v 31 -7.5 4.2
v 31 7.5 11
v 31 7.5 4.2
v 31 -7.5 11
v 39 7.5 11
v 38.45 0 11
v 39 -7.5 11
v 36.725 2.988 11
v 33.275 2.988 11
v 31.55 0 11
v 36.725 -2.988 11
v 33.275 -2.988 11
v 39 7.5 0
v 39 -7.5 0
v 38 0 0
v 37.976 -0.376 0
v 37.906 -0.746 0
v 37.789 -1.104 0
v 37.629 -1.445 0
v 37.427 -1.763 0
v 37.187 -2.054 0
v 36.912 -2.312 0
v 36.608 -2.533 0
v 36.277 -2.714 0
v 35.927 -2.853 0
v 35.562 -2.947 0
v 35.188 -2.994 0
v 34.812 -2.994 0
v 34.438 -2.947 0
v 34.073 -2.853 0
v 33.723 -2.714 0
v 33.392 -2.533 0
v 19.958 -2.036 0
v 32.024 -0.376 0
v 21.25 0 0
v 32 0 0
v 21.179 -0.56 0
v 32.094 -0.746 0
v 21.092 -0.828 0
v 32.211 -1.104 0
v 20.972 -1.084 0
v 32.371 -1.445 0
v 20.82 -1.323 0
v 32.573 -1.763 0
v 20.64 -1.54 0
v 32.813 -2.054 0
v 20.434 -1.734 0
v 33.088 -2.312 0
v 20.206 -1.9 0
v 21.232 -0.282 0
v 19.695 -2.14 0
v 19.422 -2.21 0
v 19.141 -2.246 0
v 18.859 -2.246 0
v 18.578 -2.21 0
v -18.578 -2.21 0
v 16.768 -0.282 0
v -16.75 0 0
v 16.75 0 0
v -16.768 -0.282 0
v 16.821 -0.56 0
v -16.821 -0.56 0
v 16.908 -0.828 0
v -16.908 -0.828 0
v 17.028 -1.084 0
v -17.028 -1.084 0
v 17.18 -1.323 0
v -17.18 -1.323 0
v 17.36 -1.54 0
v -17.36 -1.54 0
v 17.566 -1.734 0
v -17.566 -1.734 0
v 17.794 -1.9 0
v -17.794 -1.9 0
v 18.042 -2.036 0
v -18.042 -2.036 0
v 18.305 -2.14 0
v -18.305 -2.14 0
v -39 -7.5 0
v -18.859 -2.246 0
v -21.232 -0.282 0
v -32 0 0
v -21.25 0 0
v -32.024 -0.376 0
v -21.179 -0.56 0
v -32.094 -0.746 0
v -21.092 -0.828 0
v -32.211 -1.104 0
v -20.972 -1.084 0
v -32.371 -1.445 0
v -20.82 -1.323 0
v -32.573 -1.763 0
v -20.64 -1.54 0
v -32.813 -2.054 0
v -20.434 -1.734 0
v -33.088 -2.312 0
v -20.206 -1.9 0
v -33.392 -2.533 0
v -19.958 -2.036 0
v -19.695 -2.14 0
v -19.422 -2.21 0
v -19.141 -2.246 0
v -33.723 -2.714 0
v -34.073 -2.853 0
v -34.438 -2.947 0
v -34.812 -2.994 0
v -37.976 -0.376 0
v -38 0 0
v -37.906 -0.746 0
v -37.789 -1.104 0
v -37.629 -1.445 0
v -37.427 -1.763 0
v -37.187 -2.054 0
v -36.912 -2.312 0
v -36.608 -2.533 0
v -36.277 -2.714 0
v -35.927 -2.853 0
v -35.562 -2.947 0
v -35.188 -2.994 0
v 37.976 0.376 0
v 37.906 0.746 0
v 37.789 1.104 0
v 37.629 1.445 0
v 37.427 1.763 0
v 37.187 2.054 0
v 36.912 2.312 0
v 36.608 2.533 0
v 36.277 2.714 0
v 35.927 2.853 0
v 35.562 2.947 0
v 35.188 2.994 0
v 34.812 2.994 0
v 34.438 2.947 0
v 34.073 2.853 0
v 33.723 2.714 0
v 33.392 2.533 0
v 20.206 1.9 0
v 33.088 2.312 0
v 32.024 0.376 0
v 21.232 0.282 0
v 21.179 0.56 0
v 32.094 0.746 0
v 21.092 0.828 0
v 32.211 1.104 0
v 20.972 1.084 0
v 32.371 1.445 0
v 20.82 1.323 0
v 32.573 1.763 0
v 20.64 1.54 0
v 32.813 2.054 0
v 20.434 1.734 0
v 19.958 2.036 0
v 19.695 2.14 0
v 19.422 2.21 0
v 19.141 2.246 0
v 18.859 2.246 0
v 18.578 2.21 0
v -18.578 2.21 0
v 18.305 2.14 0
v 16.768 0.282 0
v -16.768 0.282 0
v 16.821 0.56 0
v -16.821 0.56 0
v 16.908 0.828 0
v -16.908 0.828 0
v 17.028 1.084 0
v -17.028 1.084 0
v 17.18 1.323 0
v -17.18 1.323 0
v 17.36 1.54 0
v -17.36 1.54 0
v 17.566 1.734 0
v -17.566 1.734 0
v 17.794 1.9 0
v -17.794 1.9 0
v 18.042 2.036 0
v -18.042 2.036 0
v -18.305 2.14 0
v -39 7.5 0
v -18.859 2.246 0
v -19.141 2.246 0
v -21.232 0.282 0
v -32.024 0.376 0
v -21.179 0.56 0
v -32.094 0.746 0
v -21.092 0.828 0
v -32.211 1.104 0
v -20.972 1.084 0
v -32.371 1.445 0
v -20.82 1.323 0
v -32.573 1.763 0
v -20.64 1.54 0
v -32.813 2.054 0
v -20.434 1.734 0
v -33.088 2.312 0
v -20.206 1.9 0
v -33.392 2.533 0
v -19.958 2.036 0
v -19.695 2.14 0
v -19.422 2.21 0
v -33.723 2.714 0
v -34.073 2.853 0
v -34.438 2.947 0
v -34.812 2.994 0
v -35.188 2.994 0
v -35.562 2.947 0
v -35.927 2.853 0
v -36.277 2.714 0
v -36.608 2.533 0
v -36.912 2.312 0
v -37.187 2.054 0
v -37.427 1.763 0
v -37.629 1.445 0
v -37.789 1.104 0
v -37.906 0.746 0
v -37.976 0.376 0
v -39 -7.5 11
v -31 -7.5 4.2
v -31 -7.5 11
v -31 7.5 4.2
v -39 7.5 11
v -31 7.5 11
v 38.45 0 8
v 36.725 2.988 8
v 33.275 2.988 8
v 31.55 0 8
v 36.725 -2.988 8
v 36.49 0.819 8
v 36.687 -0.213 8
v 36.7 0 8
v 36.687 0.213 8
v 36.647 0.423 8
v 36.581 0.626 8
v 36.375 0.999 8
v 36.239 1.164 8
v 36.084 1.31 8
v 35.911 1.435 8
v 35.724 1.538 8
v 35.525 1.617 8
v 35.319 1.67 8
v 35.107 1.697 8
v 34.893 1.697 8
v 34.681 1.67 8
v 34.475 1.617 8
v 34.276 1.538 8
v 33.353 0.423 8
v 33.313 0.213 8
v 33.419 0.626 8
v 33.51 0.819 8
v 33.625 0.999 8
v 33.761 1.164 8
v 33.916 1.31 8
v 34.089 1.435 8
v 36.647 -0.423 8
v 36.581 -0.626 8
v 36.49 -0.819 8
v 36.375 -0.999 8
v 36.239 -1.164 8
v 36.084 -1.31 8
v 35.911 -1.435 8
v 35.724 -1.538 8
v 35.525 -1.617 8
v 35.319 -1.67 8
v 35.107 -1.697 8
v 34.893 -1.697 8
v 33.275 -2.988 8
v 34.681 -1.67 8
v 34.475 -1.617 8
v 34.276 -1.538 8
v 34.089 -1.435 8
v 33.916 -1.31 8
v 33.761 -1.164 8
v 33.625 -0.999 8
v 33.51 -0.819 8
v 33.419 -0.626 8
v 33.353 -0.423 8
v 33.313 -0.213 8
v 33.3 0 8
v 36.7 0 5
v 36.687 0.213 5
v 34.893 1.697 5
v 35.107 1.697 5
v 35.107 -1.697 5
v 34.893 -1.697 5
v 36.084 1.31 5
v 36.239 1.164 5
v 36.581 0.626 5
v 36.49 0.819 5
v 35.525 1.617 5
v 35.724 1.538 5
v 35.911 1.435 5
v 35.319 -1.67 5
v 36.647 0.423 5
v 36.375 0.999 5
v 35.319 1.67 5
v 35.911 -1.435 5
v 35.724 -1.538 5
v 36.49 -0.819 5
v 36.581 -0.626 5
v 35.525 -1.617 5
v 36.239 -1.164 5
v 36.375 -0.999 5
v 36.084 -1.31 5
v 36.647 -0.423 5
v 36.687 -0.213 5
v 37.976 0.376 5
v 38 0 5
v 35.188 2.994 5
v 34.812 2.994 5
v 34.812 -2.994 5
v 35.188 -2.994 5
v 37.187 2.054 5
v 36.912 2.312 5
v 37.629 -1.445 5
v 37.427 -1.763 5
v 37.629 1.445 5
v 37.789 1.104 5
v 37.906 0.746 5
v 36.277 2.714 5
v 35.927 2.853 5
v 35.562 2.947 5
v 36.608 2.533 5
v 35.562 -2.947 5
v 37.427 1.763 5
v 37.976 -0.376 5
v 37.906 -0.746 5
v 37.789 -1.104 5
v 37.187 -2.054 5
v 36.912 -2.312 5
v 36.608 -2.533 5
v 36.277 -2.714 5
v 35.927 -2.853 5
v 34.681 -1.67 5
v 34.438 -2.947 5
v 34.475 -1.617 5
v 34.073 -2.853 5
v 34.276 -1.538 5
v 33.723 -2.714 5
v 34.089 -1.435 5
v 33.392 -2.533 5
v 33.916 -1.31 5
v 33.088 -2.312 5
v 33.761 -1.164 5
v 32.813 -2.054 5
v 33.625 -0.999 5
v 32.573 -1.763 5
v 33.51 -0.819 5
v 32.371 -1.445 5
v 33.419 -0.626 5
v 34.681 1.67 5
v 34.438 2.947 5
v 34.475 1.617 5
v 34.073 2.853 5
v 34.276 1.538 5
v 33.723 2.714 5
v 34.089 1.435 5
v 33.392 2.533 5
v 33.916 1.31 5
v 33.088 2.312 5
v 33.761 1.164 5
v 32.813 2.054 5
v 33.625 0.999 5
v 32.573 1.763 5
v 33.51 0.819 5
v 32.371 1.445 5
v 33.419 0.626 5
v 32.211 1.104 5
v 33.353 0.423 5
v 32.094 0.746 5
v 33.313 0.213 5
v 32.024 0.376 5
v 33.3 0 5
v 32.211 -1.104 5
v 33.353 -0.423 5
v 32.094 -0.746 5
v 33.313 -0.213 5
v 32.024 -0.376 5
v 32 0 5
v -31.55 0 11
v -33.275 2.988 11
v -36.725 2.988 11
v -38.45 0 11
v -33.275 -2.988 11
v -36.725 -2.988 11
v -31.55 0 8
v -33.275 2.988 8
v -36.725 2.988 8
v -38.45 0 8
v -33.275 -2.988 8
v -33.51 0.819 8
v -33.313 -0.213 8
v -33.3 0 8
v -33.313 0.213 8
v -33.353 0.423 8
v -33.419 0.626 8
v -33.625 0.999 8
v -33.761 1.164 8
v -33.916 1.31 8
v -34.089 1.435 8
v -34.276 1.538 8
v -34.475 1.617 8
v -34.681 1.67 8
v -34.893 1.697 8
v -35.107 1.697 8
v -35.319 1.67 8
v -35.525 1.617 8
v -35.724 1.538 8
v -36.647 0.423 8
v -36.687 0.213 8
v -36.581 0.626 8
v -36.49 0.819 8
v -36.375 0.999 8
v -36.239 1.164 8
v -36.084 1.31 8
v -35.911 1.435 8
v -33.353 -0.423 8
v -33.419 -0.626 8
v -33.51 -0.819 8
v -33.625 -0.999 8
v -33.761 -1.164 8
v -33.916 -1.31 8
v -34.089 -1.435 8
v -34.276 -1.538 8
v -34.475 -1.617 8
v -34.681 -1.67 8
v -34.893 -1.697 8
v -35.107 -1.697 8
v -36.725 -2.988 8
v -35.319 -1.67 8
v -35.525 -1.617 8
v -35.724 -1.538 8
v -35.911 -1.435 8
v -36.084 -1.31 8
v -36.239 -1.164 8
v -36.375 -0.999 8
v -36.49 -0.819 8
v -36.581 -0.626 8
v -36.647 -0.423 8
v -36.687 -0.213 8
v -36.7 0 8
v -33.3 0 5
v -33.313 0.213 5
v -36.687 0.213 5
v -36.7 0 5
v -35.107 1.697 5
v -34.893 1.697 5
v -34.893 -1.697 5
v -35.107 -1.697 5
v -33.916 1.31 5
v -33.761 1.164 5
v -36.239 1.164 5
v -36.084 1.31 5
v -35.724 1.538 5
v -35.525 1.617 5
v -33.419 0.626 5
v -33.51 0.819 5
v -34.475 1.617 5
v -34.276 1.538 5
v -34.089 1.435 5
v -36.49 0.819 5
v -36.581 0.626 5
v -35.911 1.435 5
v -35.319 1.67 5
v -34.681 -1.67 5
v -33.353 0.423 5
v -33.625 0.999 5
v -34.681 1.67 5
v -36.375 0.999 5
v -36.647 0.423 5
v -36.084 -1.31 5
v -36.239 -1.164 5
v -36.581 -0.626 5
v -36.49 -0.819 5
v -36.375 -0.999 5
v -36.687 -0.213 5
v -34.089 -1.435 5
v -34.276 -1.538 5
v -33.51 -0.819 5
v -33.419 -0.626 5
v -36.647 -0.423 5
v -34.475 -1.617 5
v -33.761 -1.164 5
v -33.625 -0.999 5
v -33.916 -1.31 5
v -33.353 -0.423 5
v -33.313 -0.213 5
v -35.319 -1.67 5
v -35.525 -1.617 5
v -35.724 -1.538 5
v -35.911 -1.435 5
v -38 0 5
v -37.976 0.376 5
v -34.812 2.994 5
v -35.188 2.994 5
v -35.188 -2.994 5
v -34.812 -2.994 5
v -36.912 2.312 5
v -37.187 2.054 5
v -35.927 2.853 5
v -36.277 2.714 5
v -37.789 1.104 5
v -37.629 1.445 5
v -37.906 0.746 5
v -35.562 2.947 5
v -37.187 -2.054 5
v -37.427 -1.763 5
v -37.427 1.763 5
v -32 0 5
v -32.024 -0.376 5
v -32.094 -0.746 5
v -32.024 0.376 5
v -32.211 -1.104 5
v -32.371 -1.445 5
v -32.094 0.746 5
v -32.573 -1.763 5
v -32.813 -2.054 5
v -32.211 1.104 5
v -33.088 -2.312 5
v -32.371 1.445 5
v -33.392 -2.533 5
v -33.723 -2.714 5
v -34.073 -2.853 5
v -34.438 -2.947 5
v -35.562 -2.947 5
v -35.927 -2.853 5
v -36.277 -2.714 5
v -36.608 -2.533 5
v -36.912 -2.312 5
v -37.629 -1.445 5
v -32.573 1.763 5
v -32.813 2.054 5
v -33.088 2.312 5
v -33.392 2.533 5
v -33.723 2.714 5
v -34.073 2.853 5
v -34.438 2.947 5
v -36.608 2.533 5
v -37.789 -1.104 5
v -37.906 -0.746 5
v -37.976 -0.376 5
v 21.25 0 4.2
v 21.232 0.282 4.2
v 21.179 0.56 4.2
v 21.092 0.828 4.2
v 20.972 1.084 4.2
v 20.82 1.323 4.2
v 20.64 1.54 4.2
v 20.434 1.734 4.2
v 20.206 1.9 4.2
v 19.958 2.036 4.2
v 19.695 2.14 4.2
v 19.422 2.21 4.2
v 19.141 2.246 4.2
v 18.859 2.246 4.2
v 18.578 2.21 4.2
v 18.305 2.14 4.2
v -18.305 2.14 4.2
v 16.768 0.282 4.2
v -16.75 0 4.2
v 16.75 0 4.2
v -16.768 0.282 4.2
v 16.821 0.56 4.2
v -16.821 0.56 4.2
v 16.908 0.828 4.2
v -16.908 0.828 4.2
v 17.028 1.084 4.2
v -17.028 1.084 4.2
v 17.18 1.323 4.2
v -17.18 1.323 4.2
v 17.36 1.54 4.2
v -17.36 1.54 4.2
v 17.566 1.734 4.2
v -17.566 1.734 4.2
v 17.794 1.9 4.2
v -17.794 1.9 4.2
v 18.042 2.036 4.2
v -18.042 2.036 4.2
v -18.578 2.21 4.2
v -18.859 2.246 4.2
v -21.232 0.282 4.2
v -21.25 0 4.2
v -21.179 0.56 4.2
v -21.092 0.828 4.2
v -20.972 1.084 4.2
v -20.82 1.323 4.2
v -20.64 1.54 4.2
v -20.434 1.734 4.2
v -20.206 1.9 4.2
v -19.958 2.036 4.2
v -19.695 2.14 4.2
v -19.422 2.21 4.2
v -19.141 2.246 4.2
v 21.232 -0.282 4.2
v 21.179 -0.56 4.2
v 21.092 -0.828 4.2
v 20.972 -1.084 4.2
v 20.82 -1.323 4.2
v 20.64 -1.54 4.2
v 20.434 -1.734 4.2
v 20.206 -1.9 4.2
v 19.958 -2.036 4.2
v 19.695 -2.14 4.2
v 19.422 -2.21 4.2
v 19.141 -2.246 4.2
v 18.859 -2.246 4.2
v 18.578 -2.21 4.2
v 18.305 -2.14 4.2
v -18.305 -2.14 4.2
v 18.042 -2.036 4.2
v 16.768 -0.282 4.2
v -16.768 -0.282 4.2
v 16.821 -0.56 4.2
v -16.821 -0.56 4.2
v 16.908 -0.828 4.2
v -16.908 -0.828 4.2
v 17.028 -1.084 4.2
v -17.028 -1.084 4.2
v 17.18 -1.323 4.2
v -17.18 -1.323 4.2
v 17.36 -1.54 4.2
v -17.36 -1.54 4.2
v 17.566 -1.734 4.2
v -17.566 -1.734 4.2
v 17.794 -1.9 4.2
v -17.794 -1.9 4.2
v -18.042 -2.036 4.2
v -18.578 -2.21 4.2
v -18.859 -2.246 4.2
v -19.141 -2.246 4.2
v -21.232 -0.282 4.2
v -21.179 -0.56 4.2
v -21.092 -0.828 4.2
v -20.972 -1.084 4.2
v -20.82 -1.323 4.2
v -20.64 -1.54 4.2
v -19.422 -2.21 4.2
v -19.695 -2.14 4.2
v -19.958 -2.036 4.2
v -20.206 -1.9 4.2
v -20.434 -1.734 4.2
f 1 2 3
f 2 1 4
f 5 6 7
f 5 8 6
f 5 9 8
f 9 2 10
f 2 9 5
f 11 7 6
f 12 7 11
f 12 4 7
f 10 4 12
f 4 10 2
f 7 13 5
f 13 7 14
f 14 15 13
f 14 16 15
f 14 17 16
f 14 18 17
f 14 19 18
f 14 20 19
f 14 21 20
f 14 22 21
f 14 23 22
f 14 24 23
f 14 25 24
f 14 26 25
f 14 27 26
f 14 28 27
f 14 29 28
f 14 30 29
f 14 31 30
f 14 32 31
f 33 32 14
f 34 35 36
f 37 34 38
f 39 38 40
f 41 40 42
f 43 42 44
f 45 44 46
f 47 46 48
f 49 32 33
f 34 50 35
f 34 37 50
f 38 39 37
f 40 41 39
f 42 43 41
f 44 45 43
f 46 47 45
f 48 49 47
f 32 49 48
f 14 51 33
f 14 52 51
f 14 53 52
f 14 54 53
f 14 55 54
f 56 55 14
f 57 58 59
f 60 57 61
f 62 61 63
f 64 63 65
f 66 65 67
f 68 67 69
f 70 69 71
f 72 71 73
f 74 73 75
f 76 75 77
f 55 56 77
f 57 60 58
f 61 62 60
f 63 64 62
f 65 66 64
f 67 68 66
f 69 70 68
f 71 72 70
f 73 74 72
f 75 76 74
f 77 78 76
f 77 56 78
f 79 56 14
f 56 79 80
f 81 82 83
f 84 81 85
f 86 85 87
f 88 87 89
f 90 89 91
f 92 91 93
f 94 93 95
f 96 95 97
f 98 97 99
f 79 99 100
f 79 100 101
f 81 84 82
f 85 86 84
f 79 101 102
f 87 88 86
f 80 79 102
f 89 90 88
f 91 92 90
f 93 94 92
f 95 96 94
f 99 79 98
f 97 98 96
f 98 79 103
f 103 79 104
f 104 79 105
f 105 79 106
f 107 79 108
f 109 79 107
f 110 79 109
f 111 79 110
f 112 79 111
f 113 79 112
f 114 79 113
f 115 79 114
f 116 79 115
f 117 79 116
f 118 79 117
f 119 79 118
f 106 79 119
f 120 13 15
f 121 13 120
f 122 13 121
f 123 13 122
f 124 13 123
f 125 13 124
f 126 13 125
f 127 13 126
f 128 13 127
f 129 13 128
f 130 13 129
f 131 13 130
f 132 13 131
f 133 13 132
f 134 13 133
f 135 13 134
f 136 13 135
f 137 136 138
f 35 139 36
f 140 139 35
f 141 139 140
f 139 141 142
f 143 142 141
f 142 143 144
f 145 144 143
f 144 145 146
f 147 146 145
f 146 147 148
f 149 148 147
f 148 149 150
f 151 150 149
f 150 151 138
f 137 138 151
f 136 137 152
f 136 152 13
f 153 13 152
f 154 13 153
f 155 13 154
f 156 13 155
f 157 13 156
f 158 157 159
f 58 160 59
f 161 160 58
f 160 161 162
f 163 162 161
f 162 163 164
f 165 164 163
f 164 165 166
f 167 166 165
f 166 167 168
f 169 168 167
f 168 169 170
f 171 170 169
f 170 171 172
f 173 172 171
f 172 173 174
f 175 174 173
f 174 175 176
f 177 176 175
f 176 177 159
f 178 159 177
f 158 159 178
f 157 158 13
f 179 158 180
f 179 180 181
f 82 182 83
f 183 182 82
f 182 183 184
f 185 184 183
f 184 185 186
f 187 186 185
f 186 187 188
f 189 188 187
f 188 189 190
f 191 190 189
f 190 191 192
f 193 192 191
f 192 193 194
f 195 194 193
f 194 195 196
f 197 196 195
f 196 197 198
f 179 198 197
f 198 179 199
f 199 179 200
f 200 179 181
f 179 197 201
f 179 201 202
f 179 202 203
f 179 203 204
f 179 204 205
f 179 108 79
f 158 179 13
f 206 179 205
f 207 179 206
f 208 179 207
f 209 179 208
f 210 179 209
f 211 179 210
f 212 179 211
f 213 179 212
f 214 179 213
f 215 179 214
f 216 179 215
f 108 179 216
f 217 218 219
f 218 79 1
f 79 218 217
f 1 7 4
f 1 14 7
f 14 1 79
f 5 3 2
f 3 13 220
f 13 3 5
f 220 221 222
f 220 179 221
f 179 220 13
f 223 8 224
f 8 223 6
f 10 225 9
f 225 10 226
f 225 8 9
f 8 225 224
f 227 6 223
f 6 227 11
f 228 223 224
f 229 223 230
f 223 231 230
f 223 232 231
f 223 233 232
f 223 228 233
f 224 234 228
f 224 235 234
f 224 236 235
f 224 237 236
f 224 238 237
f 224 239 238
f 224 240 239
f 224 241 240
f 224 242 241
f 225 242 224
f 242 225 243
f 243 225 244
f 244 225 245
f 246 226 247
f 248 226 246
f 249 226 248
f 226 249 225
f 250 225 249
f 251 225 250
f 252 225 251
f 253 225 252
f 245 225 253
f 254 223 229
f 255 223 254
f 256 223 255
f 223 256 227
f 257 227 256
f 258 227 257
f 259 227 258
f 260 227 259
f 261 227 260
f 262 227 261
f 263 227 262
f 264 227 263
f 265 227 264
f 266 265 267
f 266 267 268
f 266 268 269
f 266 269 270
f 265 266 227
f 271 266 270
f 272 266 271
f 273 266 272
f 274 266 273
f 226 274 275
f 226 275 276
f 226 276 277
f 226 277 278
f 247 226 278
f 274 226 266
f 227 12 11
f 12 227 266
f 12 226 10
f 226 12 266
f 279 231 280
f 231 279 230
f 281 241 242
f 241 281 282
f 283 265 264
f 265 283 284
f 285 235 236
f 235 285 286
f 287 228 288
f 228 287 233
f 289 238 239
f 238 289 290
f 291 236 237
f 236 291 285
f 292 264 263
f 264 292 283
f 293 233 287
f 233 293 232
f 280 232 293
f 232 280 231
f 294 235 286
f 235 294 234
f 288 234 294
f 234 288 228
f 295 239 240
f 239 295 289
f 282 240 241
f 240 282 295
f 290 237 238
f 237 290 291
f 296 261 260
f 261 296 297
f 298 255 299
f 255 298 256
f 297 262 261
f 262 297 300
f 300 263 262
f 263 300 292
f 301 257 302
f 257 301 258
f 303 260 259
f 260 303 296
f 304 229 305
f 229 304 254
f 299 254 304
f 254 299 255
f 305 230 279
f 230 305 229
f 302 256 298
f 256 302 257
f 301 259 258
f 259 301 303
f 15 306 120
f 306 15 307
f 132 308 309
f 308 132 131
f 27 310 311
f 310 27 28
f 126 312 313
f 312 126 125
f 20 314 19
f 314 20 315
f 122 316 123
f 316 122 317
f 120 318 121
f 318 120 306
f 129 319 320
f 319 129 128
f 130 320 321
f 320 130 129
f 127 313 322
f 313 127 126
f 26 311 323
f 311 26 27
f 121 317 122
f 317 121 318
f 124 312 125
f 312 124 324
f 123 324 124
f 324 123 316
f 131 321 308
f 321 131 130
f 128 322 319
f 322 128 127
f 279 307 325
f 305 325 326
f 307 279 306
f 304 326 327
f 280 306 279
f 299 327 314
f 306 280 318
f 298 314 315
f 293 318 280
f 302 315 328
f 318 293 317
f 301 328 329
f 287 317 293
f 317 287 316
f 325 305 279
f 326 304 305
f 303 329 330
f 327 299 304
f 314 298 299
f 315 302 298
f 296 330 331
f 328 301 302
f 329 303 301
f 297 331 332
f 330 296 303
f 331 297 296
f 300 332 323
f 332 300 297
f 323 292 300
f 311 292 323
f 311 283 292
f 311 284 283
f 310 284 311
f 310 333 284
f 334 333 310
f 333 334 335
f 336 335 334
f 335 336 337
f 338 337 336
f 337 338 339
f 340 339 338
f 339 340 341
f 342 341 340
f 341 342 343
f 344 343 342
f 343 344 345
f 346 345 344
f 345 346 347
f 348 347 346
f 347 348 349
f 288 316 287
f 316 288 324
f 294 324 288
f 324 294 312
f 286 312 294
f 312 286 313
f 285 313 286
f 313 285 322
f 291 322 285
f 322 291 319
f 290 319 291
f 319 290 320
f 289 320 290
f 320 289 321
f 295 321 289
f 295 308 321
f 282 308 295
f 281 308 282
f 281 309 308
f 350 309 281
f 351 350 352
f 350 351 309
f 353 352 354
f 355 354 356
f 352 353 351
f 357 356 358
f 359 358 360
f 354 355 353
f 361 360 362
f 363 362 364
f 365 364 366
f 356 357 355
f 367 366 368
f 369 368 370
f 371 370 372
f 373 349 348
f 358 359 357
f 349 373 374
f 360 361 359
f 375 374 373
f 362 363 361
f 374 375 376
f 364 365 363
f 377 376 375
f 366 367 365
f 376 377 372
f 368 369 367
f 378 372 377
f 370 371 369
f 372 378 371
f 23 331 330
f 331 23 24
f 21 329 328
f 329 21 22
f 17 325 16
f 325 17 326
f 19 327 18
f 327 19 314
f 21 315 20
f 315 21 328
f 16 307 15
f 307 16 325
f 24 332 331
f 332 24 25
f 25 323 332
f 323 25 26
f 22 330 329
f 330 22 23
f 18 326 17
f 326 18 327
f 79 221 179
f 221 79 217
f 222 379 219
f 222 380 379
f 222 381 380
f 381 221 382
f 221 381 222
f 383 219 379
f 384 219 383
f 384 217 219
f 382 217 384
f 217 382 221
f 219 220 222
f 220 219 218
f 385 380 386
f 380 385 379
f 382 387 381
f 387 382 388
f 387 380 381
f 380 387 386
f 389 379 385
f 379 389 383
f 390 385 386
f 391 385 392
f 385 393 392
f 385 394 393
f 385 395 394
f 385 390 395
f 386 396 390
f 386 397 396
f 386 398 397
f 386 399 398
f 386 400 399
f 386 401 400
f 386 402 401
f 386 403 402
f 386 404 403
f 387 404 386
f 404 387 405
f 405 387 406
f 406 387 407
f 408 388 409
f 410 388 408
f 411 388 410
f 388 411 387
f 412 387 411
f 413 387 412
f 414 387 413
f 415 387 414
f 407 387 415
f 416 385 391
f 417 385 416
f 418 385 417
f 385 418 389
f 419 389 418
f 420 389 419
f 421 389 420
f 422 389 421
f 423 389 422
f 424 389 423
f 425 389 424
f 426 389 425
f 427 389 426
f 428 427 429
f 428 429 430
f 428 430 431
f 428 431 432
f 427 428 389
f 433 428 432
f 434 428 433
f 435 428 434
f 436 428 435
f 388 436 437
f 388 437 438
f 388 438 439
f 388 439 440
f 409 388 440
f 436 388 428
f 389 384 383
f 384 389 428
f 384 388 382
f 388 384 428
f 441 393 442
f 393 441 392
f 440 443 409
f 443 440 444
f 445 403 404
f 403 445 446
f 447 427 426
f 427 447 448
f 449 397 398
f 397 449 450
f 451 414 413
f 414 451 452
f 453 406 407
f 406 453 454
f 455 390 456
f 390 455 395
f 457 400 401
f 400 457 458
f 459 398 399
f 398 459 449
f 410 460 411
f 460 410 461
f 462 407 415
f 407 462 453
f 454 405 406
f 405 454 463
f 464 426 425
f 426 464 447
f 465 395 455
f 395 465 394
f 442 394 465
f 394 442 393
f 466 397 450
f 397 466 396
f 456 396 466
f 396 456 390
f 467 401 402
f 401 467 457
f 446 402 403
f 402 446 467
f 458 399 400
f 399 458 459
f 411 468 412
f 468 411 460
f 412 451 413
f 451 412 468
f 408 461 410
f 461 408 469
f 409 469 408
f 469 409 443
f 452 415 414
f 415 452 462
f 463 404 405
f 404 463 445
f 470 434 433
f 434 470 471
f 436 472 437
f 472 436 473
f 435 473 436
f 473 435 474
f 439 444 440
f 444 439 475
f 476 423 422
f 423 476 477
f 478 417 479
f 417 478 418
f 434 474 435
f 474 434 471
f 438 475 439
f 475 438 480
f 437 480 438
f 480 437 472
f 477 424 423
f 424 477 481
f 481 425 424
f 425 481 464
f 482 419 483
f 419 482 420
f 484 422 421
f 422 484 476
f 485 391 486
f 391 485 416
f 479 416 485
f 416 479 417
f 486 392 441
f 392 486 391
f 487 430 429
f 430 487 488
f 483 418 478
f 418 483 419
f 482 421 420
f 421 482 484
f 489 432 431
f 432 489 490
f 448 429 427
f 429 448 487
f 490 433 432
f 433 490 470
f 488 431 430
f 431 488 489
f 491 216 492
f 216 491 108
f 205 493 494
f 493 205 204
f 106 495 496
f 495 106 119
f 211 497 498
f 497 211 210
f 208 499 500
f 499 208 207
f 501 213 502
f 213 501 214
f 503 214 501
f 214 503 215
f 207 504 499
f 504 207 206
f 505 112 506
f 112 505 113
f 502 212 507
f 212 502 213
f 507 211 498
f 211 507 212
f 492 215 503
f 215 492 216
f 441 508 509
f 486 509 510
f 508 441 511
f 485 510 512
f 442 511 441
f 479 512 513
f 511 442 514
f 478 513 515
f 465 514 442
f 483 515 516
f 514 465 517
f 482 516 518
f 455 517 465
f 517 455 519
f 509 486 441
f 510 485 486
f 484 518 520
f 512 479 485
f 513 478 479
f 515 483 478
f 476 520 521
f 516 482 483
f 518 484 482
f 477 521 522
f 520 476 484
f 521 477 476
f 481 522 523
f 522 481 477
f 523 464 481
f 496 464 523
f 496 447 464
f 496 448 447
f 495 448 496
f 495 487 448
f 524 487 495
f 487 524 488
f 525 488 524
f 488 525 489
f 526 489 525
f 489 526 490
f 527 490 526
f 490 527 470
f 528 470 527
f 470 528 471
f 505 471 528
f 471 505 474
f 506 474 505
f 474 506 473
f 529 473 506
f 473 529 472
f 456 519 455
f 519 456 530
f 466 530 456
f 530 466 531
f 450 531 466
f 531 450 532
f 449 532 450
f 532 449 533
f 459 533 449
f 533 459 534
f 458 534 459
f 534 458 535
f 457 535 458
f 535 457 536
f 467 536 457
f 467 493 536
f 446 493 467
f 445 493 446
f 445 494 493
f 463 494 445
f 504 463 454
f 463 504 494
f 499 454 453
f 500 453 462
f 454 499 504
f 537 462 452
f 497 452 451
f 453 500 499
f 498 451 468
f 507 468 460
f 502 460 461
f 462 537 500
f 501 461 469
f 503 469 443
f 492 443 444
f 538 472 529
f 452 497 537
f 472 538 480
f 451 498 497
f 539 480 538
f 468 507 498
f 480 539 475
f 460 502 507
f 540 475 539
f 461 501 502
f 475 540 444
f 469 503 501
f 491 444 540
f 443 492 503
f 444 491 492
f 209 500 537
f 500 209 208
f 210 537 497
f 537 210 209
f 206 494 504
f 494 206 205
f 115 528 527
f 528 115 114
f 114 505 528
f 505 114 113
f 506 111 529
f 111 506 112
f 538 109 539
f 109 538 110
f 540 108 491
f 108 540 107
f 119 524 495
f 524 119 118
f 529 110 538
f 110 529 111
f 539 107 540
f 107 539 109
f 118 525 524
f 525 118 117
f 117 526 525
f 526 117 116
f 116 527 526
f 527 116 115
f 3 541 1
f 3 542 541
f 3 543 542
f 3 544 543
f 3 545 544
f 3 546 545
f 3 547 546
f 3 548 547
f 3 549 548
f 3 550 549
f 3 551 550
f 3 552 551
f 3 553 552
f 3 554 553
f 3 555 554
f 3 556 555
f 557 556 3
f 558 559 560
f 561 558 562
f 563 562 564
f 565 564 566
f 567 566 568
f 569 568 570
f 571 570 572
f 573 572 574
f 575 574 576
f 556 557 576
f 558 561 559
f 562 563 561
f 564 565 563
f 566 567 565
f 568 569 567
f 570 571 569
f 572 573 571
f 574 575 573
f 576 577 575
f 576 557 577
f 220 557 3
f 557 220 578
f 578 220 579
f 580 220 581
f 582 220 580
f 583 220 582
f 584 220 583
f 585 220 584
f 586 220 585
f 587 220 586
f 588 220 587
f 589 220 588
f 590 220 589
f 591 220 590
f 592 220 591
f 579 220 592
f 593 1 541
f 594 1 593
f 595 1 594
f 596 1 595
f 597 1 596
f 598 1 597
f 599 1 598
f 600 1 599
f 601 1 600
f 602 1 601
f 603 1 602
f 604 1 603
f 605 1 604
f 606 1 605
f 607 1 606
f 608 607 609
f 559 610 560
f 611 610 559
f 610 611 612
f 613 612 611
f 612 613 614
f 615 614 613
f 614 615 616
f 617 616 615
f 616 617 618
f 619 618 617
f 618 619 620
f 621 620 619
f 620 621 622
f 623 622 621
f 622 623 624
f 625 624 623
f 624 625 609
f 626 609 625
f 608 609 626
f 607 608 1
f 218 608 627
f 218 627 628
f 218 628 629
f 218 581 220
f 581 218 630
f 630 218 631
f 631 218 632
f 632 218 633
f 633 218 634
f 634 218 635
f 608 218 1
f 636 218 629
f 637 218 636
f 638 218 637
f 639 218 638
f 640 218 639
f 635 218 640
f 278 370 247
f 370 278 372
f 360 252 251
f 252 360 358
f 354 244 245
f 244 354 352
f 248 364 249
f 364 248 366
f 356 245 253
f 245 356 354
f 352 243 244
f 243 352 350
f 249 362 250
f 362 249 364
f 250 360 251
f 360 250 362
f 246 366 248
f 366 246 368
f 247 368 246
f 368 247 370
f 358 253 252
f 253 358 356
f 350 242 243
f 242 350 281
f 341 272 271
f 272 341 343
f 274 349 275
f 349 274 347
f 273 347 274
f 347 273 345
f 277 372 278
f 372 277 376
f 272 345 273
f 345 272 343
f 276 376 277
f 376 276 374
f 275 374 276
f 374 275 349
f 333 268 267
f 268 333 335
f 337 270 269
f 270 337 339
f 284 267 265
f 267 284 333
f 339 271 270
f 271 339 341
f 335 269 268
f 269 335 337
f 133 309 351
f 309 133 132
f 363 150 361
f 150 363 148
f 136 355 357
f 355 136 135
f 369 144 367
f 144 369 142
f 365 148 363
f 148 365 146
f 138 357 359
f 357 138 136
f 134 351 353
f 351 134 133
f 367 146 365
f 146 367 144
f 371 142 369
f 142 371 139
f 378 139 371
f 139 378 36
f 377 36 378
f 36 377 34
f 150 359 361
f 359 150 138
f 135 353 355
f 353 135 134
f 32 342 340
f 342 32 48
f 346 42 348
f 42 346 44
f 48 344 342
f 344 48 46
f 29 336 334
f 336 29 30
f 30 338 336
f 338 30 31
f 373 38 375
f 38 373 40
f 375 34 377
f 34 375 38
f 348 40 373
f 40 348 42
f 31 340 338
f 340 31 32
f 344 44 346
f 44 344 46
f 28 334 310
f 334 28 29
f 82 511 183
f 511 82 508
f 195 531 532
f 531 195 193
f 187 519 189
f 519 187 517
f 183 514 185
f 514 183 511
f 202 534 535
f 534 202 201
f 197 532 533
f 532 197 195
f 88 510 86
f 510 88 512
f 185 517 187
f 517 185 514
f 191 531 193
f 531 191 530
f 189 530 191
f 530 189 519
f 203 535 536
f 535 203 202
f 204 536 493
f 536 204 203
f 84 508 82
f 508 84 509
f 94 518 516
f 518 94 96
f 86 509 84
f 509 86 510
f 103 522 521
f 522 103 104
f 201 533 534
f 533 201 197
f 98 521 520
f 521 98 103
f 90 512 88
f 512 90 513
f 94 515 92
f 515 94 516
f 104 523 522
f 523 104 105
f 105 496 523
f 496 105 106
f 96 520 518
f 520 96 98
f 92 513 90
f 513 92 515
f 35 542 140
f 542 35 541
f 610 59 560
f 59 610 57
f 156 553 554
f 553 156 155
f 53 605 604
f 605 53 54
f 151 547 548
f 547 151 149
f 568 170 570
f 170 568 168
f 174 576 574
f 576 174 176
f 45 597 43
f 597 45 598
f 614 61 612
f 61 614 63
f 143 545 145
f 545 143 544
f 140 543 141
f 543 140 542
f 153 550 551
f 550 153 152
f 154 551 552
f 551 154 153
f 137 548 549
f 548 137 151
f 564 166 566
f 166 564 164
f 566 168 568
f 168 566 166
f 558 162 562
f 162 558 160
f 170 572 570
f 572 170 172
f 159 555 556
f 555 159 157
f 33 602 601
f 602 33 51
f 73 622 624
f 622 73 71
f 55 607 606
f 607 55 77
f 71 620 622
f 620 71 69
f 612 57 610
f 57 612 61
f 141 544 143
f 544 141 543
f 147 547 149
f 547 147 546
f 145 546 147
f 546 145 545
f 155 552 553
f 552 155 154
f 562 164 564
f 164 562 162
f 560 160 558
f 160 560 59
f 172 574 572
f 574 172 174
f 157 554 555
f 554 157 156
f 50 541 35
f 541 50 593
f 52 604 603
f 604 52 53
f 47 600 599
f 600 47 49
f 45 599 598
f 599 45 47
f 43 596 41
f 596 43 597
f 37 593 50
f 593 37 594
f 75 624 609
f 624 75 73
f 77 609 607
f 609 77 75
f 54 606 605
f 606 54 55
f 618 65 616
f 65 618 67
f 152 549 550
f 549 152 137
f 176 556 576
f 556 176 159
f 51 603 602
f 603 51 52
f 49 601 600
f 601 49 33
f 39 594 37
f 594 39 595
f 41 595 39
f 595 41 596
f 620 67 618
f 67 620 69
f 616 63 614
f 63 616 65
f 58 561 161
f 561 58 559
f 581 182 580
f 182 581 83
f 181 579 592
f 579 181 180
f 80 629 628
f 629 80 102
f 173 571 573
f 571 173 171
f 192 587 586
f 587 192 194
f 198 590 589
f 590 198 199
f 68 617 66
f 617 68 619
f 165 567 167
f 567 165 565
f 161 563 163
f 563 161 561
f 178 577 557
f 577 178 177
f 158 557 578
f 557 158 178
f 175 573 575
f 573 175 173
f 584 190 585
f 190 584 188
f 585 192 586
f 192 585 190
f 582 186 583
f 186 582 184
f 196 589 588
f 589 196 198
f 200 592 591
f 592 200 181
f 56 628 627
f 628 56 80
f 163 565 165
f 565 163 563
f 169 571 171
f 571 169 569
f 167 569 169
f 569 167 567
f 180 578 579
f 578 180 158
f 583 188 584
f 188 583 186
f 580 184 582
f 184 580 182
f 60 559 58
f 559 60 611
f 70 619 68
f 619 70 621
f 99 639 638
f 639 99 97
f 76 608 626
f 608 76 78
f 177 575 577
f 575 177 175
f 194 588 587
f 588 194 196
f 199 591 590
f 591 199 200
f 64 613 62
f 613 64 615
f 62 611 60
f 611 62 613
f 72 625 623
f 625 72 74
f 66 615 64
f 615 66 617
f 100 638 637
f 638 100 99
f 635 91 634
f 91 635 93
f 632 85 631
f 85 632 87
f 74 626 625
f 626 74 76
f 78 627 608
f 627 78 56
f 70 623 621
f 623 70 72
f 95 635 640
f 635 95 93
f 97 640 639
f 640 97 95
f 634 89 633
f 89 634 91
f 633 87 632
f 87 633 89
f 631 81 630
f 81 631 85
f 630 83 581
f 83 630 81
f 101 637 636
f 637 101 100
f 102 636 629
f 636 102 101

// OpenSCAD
// file: ../src/MRAKOMER4_HOLDER01A.scad
$fn=50;
//otvory v krabičce
uchyt_roztec=38;
uchyt_prumer=4.5;


//otvordy pro PCB mrakomeru
PCB_prumer=3.4;
PCB_roztec=70;
PCB_vyska_soucastek=7;

vyska_materialu=4;
sire_materialu=15;


M3_vyska_matky=3;
M3_sirka_matky=6.7;
M3_prumer_hlavy_sroubu=6;
M3_vyska_hlavy=5;

//sloupek
sloupek_sirka=8;



MRAKOMER4_HOLDER01A();

module MRAKOMER4_HOLDER01A()
{
difference() {
    
union() { 

translate([0,0,vyska_materialu/2]) 
minkowski()
{
  cube([uchyt_roztec+uchyt_prumer,sire_materialu-8,vyska_materialu],center=true);
  cylinder(r=4,h=0.1);
}

translate([0,0,vyska_materialu/2+0.1]) 
  cube([PCB_roztec+PCB_prumer,sire_materialu,vyska_materialu+0.2],center=true);
  


translate([PCB_roztec/2,0,0]) 
SLOUPEK();  

translate([-PCB_roztec/2,0,0]) 
SLOUPEK(); 

}
   

//otvory pro uchycení PCB
translate([PCB_roztec/2,0,vyska_materialu/2]) 
cylinder(h=vyska_materialu+052, r=PCB_prumer/2, center=true);

translate([PCB_roztec/2,0,M3_vyska_hlavy/2])   
     cylinder(h=M3_vyska_hlavy, r=M3_prumer_hlavy_sroubu/2, center=true);

translate([-PCB_roztec/2,0,vyska_materialu/2]) 
cylinder(h=vyska_materialu+0.5, r=PCB_prumer/2, center=true);

translate([-PCB_roztec/2,0,M3_vyska_hlavy/2])   
     cylinder(h=M3_vyska_hlavy, r=M3_prumer_hlavy_sroubu/2, center=true);

//otvory pro uchycení ke krabičce
translate([uchyt_roztec/2,0,vyska_materialu/2]) 
cylinder(h=vyska_materialu+0.5, r=uchyt_prumer/2, center=true);

translate([-uchyt_roztec/2,0,vyska_materialu/2]) 
cylinder(h=vyska_materialu+0.5, r=uchyt_prumer/2, center=true);


    
    }
   }
  
   
  
    
 module SLOUPEK()  
   {
 
   difference() {
       translate([0,0,(vyska_materialu+PCB_vyska_soucastek)/2])   
    cube([sloupek_sirka,sire_materialu,vyska_materialu+PCB_vyska_soucastek],center=true);   
     
     
     translate([0,0,vyska_materialu+PCB_vyska_soucastek-M3_vyska_matky])    
    cylinder (h = M3_vyska_matky+0.01, r= (M3_sirka_matky+0.2)/2, $fn=6); 
     
         translate([0,0,(vyska_materialu+PCB_vyska_soucastek)/2])   
     cylinder(h=vyska_materialu+PCB_vyska_soucastek+0.2, r=PCB_prumer/2, center=true);
     
      translate([0,0,M3_vyska_hlavy/2])   
     cylinder(h=M3_vyska_hlavy, r=M3_prumer_hlavy_sroubu/2, center=true);
     
     
      
       
    }   
  }   
        
// main file
use <../src/MRAKOMER4_HOLDER01A.scad>

$fn=50;

MRAKOMER4_HOLDER01A();
